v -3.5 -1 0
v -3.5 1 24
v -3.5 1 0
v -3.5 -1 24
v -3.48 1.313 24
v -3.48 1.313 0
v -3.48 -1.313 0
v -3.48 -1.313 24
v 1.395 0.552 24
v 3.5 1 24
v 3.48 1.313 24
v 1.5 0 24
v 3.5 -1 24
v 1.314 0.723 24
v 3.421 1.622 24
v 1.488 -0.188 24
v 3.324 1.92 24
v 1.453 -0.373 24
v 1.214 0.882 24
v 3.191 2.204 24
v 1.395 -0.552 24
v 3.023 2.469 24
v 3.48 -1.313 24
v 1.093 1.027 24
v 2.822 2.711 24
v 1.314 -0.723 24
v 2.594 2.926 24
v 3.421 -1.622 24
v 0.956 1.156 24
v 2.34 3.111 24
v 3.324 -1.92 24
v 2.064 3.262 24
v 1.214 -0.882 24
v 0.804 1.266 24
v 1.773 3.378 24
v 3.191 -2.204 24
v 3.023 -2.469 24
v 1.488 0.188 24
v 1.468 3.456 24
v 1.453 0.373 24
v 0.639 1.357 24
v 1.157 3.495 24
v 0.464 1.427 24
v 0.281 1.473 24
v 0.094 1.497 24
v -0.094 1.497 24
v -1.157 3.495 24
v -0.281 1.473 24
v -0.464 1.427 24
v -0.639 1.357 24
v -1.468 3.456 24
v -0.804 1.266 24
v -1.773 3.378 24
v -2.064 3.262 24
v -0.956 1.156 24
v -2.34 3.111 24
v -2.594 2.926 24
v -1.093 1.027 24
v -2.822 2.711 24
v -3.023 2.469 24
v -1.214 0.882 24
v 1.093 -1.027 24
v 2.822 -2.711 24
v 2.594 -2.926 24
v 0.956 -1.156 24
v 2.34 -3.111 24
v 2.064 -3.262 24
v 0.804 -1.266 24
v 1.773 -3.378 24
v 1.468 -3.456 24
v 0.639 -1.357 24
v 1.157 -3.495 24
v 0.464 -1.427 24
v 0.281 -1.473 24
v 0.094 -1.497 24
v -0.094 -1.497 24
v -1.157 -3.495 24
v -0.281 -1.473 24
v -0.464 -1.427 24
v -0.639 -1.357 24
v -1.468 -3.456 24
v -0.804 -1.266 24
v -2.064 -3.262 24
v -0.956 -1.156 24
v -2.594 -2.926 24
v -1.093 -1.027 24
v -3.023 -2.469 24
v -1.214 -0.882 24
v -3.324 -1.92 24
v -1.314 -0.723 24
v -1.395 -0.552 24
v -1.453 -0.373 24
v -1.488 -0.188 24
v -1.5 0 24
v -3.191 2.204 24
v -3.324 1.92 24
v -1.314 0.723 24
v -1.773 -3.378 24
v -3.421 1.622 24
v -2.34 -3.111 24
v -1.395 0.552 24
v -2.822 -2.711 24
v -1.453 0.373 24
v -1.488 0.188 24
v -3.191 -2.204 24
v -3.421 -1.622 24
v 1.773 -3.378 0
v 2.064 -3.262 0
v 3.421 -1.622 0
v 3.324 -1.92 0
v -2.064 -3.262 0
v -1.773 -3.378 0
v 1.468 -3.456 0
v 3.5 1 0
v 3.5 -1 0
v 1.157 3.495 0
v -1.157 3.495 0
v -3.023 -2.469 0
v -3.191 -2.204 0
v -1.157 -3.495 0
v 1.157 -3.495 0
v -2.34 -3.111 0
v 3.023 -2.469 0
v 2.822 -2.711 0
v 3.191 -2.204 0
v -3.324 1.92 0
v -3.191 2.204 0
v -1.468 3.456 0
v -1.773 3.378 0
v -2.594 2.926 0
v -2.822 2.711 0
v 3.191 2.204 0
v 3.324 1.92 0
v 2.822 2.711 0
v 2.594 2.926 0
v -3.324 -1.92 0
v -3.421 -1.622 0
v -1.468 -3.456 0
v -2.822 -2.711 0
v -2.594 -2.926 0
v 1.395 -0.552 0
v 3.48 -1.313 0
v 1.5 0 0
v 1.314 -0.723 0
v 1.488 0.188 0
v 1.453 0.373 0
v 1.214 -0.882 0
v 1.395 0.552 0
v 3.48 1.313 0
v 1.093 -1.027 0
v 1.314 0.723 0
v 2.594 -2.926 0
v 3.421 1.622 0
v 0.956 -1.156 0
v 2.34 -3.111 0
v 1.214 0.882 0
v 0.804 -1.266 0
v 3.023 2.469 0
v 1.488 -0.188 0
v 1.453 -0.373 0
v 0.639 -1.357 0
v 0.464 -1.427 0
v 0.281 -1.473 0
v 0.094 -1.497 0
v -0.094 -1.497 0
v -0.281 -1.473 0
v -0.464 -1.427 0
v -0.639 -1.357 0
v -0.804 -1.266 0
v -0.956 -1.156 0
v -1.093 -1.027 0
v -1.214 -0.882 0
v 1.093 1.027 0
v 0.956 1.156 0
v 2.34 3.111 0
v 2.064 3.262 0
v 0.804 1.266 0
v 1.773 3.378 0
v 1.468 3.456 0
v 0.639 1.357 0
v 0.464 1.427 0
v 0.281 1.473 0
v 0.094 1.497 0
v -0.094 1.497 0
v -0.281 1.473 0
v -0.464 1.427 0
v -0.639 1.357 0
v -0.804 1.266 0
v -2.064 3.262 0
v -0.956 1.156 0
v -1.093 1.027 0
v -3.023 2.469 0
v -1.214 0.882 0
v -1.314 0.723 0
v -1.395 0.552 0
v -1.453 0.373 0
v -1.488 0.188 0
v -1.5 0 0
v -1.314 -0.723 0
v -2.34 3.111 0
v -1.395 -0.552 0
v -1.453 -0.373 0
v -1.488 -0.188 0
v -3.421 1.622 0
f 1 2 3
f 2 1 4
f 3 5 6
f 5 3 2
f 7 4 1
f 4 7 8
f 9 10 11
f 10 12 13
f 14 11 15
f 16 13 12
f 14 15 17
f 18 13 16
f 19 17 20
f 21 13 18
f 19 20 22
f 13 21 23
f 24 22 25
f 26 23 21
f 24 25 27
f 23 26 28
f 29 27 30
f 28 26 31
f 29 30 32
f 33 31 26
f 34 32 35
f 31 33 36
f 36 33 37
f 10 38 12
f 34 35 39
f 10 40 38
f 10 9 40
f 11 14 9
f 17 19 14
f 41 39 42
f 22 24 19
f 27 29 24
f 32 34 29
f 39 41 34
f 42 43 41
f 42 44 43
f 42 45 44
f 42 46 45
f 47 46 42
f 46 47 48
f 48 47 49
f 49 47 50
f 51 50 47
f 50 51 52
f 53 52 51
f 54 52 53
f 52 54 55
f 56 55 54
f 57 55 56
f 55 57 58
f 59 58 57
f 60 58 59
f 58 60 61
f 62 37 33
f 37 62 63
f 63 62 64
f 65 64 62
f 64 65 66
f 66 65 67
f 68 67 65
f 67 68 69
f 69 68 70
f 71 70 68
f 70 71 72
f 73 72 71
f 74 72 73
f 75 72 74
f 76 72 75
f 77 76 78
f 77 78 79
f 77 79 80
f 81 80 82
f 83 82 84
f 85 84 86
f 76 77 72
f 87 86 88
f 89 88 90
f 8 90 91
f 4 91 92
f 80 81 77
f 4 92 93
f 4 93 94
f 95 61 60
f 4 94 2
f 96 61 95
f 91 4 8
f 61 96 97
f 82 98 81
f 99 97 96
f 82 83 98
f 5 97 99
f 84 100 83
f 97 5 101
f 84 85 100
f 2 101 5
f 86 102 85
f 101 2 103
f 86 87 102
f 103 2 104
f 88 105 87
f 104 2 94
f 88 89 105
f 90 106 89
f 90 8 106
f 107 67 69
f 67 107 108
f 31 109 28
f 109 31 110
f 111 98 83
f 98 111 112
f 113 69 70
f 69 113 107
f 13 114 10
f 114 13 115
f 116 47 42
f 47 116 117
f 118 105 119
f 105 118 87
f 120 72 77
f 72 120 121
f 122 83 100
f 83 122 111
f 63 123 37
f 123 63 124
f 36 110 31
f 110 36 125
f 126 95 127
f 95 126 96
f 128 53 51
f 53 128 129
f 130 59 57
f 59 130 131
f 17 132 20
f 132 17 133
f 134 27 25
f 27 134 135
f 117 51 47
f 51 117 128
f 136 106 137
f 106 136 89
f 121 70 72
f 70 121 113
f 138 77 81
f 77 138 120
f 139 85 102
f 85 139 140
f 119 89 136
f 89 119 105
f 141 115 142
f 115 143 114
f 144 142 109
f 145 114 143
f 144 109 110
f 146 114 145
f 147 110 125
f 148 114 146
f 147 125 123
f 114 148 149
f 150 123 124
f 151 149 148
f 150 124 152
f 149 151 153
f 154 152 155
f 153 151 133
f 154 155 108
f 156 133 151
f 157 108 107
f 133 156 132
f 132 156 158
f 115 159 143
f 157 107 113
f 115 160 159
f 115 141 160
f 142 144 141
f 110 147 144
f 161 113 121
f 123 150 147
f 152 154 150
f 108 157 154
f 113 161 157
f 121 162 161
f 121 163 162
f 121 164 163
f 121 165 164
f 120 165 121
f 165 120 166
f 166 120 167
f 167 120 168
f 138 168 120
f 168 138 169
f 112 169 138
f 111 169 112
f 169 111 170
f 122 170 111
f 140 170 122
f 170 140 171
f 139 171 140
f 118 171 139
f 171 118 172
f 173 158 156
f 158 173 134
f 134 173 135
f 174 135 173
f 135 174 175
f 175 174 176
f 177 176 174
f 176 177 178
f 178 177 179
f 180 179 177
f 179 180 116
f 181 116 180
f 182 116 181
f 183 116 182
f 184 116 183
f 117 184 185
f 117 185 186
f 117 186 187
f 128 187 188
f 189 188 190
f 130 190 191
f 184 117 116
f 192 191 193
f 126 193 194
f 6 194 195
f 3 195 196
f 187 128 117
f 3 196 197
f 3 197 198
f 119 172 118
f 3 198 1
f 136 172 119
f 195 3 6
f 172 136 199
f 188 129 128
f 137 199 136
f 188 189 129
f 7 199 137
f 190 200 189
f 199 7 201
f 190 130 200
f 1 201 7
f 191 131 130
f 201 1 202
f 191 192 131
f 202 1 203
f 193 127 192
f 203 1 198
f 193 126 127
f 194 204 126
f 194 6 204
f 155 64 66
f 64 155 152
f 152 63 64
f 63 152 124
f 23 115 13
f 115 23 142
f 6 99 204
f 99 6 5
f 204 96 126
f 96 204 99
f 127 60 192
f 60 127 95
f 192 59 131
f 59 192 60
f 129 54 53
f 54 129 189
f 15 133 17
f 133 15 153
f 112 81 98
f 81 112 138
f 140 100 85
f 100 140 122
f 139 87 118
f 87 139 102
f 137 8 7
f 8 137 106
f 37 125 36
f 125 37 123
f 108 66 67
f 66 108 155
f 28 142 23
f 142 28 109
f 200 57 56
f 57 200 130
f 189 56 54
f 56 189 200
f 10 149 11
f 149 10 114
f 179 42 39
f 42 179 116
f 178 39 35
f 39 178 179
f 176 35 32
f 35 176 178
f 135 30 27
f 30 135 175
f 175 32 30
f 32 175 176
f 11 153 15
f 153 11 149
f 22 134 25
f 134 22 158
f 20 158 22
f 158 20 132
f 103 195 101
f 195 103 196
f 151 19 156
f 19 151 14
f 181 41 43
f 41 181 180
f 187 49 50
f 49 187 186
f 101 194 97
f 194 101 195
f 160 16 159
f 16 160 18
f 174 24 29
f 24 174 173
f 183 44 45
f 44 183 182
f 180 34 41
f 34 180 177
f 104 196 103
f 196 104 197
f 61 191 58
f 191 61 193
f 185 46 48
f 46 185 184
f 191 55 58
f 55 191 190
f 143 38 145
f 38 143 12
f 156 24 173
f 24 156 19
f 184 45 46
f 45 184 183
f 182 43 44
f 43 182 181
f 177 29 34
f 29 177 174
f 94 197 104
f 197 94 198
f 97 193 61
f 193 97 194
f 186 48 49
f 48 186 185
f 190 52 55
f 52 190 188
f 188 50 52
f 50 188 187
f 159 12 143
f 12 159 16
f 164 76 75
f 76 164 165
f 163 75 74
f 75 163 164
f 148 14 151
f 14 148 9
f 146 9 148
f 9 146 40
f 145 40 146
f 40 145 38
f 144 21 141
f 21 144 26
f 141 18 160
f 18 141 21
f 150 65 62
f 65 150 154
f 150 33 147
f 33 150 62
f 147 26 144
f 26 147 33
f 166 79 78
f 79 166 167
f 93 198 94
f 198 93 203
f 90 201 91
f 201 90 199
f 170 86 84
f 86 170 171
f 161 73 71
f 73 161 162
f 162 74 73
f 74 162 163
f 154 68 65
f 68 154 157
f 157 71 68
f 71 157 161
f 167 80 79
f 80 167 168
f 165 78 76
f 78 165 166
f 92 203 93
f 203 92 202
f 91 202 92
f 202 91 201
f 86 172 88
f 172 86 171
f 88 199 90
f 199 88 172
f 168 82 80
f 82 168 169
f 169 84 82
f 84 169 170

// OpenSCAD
$fn = 50;


difference() {
	union() {
		translate(v = [0, 0, 0]) {
			rotate(a = [0, 0, 0]) {
				hull() {
					translate(v = [-1.0000000000, 1.0000000000, 0]) {
						rotate(a = [0, 0, 0]) {
							translate(v = [0, 0, 0]) {
								rotate(a = [0, 0, 0]) {
									cylinder(h = 24, r = 2.5000000000);
								}
							}
						}
					}
					translate(v = [1.0000000000, 1.0000000000, 0]) {
						rotate(a = [0, 0, 0]) {
							translate(v = [0, 0, 0]) {
								rotate(a = [0, 0, 0]) {
									cylinder(h = 24, r = 2.5000000000);
								}
							}
						}
					}
					translate(v = [-1.0000000000, -1.0000000000, 0]) {
						rotate(a = [0, 0, 0]) {
							translate(v = [0, 0, 0]) {
								rotate(a = [0, 0, 0]) {
									cylinder(h = 24, r = 2.5000000000);
								}
							}
						}
					}
					translate(v = [1.0000000000, -1.0000000000, 0]) {
						rotate(a = [0, 0, 0]) {
							translate(v = [0, 0, 0]) {
								rotate(a = [0, 0, 0]) {
									cylinder(h = 24, r = 2.5000000000);
								}
							}
						}
					}
				}
			}
		}
	}
	union() {
		translate(v = [0.0000000000, 0.0000000000, 0]) {
			rotate(a = [0, 0, 0]) {
				translate(v = [0, 0, -50]) {
					rotate(a = [0, 0, 0]) {
						cylinder(h = 100, r = 1.5000000000);
					}
				}
			}
		}
	}
}
